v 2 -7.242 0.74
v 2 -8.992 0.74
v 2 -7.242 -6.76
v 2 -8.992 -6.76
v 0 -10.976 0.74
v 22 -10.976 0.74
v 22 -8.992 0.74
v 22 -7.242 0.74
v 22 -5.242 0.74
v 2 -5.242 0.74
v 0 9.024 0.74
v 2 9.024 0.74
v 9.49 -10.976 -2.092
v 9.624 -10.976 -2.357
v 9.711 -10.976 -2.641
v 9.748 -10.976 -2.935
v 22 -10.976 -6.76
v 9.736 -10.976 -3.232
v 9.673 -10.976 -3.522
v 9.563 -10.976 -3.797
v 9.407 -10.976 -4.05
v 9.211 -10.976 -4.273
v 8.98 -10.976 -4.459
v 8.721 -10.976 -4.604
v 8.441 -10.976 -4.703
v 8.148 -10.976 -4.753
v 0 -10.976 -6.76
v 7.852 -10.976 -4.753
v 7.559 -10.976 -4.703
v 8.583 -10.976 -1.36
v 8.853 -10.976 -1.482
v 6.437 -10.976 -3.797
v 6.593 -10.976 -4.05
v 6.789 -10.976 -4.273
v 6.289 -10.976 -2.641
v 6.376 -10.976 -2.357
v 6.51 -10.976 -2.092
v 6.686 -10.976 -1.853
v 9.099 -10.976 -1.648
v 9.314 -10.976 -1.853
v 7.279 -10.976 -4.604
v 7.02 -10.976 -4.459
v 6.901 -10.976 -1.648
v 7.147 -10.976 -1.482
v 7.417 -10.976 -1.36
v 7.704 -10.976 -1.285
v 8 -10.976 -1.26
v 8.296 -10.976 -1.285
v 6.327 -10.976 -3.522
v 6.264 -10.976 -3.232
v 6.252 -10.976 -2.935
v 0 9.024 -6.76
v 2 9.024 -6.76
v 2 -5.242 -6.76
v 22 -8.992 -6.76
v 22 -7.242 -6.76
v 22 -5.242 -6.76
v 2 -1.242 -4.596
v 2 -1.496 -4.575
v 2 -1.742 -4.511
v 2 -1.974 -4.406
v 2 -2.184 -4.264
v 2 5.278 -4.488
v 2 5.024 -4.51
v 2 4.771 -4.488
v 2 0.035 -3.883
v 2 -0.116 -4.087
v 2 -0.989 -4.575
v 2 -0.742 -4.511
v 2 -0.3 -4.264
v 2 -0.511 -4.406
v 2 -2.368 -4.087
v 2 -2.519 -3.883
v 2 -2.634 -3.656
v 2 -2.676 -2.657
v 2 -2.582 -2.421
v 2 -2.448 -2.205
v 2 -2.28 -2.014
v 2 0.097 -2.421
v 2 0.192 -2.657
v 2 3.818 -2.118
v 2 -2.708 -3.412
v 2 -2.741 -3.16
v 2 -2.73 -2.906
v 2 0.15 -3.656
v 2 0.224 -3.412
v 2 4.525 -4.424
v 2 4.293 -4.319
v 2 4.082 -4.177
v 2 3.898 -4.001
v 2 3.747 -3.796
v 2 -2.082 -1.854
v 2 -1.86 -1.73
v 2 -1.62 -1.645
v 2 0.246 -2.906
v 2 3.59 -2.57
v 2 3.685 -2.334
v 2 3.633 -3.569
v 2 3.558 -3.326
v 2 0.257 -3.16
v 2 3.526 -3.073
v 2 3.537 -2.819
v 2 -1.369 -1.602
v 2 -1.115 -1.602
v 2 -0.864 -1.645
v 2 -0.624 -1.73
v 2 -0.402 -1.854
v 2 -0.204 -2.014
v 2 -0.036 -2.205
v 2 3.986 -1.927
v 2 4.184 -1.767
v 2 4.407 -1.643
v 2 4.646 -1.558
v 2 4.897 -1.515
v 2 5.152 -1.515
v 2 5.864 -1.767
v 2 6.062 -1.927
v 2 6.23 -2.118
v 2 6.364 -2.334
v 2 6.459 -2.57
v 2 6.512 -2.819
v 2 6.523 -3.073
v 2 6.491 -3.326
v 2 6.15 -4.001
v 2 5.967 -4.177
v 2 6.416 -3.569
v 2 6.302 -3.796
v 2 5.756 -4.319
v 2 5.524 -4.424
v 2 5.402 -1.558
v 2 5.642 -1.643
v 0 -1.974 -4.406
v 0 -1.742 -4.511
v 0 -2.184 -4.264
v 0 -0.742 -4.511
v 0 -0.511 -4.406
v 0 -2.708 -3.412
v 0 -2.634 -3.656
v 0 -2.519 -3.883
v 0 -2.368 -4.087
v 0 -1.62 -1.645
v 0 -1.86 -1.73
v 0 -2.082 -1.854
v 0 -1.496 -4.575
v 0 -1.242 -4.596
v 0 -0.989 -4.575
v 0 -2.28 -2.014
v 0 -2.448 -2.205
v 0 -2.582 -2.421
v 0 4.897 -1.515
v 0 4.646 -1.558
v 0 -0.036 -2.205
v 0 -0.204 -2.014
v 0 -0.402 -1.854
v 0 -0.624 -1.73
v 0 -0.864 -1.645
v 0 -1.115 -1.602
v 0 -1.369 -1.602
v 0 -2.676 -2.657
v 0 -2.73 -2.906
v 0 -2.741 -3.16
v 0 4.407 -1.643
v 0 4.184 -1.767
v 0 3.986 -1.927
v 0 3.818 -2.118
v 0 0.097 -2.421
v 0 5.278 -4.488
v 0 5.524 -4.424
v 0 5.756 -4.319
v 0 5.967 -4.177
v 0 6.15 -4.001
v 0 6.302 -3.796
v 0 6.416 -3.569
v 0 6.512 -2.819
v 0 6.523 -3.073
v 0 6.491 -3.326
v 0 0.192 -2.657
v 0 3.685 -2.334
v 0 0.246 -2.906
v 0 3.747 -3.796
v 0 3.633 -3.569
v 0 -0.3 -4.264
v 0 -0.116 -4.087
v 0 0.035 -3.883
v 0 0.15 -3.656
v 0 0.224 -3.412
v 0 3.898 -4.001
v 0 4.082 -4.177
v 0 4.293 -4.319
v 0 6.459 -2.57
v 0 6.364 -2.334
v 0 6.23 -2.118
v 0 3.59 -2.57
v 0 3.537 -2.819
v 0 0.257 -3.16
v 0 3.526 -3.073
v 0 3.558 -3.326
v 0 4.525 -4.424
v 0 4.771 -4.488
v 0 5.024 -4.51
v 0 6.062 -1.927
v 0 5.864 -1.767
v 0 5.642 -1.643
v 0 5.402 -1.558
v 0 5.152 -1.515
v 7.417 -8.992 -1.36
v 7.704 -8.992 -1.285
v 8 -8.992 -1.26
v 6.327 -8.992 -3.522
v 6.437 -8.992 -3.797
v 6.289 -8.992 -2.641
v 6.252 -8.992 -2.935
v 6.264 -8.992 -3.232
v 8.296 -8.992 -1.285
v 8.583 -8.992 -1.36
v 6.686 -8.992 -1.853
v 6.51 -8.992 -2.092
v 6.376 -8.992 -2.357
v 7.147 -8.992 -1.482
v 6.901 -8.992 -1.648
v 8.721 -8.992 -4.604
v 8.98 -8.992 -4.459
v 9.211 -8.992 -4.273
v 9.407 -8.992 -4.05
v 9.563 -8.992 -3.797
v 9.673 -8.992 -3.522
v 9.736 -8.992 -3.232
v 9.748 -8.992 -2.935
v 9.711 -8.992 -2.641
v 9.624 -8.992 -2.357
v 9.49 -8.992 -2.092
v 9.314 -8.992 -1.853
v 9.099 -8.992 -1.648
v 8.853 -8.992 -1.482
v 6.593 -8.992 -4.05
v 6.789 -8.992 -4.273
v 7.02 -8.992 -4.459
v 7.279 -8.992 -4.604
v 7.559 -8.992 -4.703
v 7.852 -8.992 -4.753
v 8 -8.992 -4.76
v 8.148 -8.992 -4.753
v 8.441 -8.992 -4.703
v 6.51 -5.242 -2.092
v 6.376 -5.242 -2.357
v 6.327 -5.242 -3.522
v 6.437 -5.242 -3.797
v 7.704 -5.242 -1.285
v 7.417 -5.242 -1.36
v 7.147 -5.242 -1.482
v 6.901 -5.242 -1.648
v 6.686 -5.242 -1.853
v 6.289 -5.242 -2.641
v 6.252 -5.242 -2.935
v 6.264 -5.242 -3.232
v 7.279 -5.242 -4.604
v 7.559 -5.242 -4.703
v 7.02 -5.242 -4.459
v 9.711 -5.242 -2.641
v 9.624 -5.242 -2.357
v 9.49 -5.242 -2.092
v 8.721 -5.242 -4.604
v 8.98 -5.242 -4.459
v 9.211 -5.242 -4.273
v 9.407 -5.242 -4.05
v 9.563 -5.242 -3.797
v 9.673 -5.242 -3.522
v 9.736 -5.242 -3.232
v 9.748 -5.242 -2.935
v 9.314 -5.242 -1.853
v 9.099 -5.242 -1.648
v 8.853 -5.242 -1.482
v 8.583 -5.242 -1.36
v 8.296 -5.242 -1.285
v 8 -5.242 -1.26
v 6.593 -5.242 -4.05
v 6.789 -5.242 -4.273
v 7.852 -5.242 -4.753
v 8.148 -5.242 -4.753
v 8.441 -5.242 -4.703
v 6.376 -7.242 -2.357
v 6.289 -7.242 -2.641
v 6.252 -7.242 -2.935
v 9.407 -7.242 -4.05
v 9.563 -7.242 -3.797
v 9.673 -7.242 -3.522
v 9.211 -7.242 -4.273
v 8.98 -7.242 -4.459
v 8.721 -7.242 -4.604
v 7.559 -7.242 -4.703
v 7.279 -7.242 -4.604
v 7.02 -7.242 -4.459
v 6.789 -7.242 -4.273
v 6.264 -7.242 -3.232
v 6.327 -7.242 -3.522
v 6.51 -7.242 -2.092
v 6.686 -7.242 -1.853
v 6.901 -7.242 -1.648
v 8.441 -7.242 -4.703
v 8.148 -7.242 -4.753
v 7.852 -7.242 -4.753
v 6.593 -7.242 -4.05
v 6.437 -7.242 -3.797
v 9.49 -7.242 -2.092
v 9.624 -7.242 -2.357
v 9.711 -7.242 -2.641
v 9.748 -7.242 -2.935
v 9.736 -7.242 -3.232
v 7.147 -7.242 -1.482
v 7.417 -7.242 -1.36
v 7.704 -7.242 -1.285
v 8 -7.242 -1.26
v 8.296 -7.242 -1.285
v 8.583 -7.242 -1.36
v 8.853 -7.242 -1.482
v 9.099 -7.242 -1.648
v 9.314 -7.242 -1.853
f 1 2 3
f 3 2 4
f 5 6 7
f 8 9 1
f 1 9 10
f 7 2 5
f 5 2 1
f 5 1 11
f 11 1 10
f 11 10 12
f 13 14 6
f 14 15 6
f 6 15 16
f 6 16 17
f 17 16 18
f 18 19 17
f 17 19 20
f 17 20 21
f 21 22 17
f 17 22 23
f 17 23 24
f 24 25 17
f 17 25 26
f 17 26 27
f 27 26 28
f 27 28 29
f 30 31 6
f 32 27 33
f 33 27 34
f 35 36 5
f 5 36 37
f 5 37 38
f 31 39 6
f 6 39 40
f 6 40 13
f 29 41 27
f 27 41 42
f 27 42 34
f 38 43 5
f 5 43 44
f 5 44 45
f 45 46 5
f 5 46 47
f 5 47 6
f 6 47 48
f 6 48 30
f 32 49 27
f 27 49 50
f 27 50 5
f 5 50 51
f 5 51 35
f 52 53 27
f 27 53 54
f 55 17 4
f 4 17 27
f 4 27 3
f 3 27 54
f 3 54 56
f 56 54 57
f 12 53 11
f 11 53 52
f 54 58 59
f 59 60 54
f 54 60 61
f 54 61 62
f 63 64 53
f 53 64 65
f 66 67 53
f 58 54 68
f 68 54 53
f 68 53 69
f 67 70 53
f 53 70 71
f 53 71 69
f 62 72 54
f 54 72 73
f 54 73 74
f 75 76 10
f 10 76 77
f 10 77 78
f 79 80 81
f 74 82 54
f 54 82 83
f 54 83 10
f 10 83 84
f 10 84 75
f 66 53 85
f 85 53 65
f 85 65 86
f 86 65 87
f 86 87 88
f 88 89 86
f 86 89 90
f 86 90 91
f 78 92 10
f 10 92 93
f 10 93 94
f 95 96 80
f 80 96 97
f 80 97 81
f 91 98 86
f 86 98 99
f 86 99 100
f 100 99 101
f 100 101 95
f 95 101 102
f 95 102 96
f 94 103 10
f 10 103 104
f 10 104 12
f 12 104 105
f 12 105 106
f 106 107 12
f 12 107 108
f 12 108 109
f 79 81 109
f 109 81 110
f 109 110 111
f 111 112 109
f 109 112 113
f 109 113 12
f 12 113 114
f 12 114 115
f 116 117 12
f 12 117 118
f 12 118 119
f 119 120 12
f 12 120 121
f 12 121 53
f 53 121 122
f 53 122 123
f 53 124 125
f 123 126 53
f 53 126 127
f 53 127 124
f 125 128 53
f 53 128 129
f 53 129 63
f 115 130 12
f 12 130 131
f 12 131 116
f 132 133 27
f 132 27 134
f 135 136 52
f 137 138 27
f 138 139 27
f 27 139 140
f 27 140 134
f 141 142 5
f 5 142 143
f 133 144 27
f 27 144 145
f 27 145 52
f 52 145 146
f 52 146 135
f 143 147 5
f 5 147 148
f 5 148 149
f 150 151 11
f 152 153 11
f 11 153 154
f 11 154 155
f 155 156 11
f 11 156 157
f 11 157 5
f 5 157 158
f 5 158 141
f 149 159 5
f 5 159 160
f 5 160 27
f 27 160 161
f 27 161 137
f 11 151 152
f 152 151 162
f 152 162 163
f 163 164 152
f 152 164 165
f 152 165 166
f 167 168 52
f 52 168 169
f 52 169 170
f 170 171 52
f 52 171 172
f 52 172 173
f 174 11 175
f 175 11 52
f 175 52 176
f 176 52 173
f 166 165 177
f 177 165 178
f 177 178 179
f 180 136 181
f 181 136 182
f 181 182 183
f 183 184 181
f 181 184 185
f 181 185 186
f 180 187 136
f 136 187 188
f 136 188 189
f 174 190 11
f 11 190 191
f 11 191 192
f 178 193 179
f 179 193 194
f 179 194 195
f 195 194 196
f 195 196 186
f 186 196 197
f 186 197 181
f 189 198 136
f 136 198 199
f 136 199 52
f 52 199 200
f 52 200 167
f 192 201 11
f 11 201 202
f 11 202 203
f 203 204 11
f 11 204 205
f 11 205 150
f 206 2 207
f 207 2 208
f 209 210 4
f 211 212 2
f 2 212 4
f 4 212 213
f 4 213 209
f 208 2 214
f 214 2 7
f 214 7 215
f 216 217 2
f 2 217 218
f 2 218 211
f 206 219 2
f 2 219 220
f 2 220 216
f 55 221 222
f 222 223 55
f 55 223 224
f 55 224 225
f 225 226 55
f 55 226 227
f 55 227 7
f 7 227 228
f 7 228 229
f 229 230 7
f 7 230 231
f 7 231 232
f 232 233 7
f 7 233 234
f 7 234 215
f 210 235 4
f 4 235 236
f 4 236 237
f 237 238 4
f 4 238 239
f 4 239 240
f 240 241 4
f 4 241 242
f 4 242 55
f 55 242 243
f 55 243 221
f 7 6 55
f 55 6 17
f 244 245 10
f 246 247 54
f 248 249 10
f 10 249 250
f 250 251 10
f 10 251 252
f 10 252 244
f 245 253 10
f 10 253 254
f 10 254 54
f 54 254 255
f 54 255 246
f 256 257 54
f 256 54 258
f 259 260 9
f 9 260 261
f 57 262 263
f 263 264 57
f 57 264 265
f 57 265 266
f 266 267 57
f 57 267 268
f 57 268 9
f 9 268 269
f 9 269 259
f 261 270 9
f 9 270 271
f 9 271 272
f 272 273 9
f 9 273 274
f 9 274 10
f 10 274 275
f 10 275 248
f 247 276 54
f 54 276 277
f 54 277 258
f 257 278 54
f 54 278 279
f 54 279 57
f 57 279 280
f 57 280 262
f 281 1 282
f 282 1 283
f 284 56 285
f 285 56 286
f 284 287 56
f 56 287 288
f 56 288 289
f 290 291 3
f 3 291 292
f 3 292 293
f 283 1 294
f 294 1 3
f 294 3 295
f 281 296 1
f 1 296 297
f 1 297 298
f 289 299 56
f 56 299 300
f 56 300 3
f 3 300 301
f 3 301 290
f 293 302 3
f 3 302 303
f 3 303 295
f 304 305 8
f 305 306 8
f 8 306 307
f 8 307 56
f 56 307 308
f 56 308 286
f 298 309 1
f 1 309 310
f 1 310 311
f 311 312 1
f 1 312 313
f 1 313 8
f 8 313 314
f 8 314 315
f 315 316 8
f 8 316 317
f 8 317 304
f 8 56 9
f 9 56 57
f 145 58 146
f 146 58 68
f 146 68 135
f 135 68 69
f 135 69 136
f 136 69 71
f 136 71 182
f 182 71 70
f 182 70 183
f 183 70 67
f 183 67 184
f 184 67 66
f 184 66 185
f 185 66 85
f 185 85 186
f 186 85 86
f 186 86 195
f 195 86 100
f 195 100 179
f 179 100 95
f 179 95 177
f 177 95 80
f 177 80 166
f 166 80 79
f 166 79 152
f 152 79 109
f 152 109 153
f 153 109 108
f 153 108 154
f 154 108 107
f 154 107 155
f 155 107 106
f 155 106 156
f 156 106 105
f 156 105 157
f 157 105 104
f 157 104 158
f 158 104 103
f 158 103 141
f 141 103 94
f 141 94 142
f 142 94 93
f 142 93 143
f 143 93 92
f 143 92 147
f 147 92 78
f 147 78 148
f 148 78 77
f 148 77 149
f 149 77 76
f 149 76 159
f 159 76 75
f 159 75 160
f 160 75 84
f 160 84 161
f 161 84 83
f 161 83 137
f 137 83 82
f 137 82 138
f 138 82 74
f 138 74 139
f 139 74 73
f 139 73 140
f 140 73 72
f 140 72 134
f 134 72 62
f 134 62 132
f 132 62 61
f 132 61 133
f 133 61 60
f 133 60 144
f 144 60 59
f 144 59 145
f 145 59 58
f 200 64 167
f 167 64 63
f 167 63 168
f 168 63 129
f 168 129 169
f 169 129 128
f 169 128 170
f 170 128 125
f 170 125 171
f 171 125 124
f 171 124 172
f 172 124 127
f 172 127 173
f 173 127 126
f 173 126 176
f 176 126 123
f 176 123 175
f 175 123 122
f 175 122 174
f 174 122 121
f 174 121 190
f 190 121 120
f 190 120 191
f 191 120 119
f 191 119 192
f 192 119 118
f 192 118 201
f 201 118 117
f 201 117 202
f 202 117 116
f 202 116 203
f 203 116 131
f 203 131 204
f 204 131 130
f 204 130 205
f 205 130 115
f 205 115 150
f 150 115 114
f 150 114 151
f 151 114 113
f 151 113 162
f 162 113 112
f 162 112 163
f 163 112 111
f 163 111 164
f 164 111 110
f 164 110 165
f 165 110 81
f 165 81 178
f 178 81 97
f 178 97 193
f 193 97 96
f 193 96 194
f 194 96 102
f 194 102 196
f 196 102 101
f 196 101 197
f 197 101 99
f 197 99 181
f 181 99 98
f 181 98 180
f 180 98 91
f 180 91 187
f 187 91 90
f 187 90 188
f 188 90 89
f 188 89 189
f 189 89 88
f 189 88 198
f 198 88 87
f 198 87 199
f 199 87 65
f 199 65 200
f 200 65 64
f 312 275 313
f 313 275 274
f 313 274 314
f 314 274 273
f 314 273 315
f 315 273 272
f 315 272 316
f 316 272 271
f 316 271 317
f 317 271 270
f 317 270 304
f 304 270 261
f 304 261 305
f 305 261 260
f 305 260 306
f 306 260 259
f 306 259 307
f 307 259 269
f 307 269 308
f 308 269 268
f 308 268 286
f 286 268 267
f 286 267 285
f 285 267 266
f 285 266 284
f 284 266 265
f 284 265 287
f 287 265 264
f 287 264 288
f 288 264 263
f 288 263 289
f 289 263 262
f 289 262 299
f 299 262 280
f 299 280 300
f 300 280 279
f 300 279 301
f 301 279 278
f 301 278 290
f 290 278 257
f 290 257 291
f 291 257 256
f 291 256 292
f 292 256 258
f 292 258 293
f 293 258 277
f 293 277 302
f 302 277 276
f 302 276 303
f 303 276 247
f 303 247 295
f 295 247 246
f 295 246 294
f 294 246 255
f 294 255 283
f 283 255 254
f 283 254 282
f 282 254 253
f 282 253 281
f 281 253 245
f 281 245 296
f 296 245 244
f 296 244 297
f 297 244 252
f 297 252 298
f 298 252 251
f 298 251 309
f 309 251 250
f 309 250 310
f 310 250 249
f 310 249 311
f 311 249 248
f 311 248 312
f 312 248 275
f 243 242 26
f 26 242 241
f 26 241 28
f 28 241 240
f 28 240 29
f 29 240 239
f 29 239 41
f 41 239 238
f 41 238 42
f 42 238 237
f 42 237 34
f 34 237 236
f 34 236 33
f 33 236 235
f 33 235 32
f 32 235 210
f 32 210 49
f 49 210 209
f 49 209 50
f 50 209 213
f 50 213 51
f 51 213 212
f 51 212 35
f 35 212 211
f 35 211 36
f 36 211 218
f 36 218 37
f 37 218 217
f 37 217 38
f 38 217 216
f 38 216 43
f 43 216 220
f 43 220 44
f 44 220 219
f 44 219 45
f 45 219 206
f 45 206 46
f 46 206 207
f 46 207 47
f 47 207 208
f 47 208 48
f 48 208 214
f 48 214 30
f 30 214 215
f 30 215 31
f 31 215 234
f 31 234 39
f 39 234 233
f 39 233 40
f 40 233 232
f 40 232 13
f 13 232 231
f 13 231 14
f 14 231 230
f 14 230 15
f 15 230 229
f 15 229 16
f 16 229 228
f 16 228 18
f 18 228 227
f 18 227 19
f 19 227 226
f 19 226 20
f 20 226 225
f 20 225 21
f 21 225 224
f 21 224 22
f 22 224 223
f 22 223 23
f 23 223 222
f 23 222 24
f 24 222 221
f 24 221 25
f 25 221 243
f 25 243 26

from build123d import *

# Parameters (mm, degrees)
SKETCH1_W           = 7.5
SKETCH1_H           = 20
BOSS_EXTRUDE2_DEPTH = 2
SKETCH2_W           = 7.5
SKETCH2_H           = 1.98347932
BOSS_EXTRUDE3_DEPTH = 20
SKETCH3_W           = 7.5
SKETCH3_H           = 2
BOSS_EXTRUDE4_DEPTH = 20
SKETCH5_R           = 1.5
CUT_EXTRUDE1_DEPTH  = 20
SKETCH6_R           = 1.75
CUT_EXTRUDE2_DEPTH  = 10


with BuildPart() as part:
    # Sketch1 → Boss-Extrude2 (new body)
    with BuildSketch(Plane(origin=(0, 0, 0), x_dir=(0, 0, -1), z_dir=(1, 0, 0))):
        with Locations((3.009581882, -0.975609756)):
            Rectangle(SKETCH1_W, SKETCH1_H)
    extrude(amount=BOSS_EXTRUDE2_DEPTH)

    # Sketch2 → Boss-Extrude3 (add)
    with BuildSketch(Plane(origin=(2, 0, 0), x_dir=(0, 0, -1), z_dir=(1, 0, 0))):
        with Locations((3.009581882, -9.983870096)):
            Rectangle(SKETCH2_W, SKETCH2_H)
    extrude(amount=BOSS_EXTRUDE3_DEPTH)

    # Sketch3 → Boss-Extrude4 (add)
    with BuildSketch(Plane(origin=(2, 0, 0), x_dir=(0, 0, -1), z_dir=(1, 0, 0))):
        with Locations((3.009581882, -6.242130436)):
            Rectangle(SKETCH3_W, SKETCH3_H)
    extrude(amount=BOSS_EXTRUDE4_DEPTH)

    # Sketch5 → Cut-Extrude1 (cut)
    with BuildSketch(Plane(origin=(2, 0, 0), x_dir=(0, 0, -1), z_dir=(1, 0, 0))):
        with Locations((3.009581882, 5.024390244)):
            Circle(SKETCH5_R)
        with Locations((3.096458319, -1.242130436)):
            Circle(SKETCH5_R)
    extrude(amount=-CUT_EXTRUDE1_DEPTH, mode=Mode.SUBTRACT)

    # Sketch6 → Cut-Extrude2 (cut)
    with BuildSketch(Plane(origin=(0, -5.242130436, 0), x_dir=(1, 0, 0), z_dir=(0, 1, 0))):
        with Locations((8, 3.009581882)):
            Circle(SKETCH6_R)
    extrude(amount=-CUT_EXTRUDE2_DEPTH, mode=Mode.SUBTRACT)


solid = part.part
